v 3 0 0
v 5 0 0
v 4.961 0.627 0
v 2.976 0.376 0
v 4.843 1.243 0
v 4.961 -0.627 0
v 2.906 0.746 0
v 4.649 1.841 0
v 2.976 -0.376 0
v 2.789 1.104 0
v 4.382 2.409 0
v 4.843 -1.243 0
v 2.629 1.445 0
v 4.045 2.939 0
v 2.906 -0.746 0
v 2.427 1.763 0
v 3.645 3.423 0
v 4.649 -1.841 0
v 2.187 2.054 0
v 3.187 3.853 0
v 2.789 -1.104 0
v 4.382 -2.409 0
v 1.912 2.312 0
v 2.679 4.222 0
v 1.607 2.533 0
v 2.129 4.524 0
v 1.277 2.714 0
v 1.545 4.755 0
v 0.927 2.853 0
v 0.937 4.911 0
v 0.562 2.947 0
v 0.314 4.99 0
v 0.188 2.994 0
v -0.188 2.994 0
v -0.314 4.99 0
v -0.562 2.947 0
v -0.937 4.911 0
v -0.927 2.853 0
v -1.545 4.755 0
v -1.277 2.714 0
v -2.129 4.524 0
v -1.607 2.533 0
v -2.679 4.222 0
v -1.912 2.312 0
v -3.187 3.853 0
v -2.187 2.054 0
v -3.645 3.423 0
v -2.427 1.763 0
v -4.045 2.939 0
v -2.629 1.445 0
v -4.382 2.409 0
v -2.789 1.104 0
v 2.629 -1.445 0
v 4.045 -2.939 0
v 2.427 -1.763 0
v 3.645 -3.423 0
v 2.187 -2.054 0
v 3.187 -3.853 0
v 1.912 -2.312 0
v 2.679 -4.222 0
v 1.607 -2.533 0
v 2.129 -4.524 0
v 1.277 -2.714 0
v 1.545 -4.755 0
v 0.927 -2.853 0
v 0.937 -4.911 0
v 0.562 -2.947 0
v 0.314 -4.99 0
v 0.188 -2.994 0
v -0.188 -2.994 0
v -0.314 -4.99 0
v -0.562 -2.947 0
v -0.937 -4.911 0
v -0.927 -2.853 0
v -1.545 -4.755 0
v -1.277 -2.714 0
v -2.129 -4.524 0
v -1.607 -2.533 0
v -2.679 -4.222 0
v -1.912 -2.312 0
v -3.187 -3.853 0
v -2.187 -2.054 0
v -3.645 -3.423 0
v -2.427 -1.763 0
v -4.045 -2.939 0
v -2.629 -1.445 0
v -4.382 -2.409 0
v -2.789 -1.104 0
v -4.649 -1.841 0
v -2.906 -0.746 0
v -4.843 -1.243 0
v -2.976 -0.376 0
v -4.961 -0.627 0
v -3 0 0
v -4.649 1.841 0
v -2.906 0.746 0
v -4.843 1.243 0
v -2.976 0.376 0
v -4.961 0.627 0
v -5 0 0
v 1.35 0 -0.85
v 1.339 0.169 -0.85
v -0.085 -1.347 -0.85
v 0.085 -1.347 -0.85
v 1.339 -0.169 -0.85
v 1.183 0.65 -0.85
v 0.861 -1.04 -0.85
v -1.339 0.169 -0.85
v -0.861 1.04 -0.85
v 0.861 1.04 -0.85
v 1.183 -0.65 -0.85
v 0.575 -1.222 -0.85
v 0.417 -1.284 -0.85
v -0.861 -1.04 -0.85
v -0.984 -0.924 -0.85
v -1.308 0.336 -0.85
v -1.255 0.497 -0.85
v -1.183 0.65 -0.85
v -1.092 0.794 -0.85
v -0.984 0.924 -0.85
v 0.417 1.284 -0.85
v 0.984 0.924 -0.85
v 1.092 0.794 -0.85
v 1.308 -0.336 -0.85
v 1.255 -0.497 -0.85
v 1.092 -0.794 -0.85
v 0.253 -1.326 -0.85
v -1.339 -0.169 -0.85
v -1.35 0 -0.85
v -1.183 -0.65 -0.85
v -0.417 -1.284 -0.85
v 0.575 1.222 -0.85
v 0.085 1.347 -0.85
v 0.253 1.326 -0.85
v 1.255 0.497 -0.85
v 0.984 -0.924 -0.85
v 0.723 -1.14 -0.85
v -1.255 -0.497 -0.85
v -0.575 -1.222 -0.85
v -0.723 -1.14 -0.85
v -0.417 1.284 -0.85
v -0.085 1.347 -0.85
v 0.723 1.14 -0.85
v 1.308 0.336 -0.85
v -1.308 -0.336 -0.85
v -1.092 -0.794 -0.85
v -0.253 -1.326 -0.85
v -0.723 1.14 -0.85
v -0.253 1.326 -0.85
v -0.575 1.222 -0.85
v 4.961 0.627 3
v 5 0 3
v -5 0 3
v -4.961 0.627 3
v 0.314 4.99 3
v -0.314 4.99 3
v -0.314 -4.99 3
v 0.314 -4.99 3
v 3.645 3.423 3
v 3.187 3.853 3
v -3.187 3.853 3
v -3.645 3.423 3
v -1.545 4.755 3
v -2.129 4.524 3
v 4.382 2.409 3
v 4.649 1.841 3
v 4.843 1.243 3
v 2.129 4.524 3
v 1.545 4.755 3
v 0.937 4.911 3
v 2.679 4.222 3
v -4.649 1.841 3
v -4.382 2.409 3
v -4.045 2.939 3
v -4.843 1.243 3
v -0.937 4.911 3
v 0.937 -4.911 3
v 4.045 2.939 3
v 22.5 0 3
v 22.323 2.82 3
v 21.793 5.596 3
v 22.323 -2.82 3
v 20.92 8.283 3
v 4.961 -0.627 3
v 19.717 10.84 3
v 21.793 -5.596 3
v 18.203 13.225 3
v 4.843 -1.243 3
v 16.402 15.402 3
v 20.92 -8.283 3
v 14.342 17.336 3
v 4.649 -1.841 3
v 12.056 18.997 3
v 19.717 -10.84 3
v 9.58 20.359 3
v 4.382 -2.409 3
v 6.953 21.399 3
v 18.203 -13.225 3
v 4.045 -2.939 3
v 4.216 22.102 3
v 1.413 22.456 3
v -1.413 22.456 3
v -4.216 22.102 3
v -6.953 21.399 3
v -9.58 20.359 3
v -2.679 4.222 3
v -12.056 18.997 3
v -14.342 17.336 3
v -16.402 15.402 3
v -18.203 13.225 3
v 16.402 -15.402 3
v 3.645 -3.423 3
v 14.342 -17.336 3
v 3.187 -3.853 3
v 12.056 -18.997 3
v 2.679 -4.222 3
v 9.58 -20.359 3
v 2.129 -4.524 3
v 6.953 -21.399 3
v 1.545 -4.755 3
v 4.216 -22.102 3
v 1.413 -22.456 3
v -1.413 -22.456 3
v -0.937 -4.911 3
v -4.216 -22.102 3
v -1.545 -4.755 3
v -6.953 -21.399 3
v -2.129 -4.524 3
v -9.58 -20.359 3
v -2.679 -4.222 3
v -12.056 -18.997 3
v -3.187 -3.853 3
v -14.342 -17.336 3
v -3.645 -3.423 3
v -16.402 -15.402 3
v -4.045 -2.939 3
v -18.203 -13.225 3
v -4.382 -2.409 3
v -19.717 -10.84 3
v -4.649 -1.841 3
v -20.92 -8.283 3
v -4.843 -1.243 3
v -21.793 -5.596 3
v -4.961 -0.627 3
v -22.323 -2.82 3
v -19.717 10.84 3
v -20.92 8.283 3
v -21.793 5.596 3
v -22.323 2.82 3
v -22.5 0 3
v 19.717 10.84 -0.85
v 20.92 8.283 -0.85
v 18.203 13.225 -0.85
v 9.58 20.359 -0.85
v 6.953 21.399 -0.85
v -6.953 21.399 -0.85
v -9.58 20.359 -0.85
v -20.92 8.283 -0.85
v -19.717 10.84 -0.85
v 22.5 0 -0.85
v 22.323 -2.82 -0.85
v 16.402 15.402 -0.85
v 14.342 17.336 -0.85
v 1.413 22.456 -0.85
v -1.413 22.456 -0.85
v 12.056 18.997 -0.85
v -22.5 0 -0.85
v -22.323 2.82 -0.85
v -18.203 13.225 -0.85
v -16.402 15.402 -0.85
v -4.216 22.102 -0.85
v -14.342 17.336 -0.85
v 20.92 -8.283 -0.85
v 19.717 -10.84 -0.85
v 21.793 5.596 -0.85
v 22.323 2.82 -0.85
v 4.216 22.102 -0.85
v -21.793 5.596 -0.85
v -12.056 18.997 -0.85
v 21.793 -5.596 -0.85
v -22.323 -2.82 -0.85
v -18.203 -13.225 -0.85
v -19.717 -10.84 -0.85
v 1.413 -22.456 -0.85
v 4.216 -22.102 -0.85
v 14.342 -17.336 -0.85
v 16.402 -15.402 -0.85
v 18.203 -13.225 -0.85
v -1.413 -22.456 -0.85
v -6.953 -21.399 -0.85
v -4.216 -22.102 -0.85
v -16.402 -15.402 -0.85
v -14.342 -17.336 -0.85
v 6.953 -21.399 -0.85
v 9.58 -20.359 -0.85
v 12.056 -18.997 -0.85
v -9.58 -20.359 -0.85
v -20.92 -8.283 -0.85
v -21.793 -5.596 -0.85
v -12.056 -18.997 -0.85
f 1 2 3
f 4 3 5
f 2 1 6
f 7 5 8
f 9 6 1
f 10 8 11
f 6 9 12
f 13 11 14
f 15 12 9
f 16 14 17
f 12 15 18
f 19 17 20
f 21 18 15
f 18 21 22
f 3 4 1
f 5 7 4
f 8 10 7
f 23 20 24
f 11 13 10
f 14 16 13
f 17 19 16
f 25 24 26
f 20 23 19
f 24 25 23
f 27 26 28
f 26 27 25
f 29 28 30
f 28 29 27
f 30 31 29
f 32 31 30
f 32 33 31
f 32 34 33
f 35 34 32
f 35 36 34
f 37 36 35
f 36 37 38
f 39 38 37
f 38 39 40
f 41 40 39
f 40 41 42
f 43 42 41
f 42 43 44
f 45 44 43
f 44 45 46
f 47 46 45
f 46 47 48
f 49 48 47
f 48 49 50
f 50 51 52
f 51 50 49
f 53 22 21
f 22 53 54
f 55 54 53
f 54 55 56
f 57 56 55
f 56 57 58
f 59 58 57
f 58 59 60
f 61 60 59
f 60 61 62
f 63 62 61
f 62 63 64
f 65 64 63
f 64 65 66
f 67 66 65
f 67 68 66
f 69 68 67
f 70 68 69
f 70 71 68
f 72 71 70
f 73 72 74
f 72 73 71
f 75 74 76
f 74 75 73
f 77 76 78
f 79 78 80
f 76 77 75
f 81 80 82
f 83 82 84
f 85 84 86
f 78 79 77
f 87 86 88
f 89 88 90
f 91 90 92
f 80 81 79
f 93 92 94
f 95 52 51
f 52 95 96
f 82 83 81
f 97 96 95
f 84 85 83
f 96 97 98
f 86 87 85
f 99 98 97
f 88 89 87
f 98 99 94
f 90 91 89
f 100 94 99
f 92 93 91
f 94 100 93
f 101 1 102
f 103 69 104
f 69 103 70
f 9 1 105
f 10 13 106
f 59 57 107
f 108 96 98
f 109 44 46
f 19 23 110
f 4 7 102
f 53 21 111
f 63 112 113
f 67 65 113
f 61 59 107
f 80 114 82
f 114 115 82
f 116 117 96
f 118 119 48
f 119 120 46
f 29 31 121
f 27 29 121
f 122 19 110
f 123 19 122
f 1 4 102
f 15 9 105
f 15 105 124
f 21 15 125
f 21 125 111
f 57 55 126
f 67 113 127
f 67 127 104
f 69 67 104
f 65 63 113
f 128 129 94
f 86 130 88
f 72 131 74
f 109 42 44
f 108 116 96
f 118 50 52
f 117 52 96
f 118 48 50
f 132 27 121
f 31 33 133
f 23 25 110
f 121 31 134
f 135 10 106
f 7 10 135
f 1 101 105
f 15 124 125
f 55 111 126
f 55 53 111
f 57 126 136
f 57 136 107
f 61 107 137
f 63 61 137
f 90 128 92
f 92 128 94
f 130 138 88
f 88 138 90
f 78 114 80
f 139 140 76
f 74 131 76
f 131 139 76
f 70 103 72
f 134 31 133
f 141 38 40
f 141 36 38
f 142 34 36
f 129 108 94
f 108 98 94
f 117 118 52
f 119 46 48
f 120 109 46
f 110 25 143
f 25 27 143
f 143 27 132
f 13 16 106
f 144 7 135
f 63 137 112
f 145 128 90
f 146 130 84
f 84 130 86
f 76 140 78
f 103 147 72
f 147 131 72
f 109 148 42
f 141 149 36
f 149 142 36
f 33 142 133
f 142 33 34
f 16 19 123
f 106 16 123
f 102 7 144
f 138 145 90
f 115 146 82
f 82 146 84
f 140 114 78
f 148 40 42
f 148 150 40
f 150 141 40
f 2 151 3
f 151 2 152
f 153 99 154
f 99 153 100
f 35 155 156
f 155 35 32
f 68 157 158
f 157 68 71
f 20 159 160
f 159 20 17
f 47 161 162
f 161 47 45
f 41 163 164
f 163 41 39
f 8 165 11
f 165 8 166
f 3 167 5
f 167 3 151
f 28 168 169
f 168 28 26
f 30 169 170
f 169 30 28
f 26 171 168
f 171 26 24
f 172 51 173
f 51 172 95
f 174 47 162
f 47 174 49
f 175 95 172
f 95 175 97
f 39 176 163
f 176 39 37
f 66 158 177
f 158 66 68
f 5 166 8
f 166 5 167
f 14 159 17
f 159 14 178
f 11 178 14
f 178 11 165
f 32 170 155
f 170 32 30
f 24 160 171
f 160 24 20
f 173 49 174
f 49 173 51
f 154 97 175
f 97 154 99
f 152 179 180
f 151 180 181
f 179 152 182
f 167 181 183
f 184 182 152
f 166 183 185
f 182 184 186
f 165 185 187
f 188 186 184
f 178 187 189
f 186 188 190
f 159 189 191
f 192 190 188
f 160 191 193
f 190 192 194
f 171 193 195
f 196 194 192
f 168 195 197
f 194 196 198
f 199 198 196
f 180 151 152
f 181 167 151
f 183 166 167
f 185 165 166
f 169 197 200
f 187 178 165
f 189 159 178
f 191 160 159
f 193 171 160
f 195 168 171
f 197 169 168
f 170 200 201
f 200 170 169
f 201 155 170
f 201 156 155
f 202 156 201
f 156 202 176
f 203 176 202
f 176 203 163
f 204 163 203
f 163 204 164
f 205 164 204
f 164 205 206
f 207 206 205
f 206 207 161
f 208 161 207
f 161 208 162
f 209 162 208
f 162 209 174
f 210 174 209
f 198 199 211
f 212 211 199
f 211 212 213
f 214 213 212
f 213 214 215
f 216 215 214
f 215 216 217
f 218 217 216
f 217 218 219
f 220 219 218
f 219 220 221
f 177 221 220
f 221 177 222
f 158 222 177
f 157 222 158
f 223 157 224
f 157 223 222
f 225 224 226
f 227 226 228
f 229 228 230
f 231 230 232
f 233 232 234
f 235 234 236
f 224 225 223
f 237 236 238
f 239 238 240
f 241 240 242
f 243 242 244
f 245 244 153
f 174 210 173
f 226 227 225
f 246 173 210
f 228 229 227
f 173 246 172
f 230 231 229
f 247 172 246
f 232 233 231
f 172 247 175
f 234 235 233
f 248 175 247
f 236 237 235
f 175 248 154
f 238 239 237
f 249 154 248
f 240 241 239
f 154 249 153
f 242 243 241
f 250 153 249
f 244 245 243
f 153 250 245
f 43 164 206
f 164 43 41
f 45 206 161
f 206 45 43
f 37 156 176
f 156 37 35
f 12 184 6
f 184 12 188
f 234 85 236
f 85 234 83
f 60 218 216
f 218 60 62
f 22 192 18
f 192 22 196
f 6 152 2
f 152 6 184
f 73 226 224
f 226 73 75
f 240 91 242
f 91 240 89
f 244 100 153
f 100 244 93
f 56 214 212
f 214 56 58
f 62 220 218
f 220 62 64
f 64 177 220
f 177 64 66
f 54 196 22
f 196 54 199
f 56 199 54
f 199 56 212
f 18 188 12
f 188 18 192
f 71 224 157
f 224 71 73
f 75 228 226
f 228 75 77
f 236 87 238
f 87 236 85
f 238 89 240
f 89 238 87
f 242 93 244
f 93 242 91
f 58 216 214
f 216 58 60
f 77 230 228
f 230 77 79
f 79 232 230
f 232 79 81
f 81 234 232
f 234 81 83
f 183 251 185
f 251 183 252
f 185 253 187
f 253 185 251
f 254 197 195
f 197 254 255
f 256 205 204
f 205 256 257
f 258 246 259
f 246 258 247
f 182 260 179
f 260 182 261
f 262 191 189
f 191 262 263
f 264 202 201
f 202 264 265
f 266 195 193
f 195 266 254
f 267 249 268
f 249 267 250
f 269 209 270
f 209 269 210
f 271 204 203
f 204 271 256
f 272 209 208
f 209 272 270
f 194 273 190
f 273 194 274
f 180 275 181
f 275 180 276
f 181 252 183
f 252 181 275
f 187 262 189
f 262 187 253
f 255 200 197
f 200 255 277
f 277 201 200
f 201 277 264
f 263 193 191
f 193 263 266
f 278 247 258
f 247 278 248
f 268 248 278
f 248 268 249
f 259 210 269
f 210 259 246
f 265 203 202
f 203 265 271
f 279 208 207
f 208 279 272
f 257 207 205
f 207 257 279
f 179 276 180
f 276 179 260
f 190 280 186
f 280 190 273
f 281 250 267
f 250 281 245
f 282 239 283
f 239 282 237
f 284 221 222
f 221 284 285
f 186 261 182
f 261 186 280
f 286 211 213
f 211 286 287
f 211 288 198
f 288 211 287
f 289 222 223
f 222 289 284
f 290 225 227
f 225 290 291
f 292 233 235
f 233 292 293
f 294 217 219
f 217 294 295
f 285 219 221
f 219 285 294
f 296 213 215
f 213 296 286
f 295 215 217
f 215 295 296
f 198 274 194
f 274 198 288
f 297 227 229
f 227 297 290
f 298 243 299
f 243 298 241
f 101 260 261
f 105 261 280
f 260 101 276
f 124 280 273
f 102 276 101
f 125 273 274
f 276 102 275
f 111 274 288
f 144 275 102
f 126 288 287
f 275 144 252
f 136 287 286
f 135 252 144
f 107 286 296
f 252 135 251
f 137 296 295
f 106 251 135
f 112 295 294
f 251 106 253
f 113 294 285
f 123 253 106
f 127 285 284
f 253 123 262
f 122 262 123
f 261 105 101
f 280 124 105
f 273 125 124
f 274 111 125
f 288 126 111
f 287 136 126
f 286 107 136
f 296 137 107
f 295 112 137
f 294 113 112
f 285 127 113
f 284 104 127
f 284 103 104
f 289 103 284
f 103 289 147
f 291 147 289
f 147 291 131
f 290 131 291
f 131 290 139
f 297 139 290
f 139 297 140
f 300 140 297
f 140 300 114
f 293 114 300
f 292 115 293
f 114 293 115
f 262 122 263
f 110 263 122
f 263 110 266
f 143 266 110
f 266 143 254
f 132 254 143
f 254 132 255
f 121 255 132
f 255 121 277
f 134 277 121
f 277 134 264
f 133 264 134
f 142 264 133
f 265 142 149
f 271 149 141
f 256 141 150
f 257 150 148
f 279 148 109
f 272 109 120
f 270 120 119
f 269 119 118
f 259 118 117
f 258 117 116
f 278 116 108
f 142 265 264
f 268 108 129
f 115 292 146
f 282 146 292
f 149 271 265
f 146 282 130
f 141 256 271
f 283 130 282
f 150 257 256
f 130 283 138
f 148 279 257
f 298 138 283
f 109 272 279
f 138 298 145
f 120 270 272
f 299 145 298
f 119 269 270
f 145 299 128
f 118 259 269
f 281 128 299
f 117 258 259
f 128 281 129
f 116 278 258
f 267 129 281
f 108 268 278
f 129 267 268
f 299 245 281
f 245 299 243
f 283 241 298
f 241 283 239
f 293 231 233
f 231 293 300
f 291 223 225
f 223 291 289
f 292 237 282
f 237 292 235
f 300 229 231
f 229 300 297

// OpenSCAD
$fn = 50;

difference() {
	union() {
		translate(v = [0, 0, -0.8500000000000001]) {
			cylinder(h = 3.85, r = 22.5);
		}
	}
	union() {
		translate(v = [0, 0, 0]) {
			rotate(a = [0, 0, 0]) {
				difference() {
					union() {
						translate(v = [0, 0, -3.85]) {
							cylinder(h = 3.85, r = 1.0);
						}
						translate(v = [0, 0, -0.85]) {
							cylinder(h = 0.85, r1 = 1.35, r2 = 3.0);
						}
						translate(v = [0, 0, -3.85]) {
							cylinder(h = 3.85, r = 1.35);
						}
						translate(v = [0, 0, -3.85]) {
							cylinder(h = 3.85, r = 1.0);
						}
					}
					union();
				}
			}
		}
		#cylinder(h = 3, r = 5.0);
	}
}
